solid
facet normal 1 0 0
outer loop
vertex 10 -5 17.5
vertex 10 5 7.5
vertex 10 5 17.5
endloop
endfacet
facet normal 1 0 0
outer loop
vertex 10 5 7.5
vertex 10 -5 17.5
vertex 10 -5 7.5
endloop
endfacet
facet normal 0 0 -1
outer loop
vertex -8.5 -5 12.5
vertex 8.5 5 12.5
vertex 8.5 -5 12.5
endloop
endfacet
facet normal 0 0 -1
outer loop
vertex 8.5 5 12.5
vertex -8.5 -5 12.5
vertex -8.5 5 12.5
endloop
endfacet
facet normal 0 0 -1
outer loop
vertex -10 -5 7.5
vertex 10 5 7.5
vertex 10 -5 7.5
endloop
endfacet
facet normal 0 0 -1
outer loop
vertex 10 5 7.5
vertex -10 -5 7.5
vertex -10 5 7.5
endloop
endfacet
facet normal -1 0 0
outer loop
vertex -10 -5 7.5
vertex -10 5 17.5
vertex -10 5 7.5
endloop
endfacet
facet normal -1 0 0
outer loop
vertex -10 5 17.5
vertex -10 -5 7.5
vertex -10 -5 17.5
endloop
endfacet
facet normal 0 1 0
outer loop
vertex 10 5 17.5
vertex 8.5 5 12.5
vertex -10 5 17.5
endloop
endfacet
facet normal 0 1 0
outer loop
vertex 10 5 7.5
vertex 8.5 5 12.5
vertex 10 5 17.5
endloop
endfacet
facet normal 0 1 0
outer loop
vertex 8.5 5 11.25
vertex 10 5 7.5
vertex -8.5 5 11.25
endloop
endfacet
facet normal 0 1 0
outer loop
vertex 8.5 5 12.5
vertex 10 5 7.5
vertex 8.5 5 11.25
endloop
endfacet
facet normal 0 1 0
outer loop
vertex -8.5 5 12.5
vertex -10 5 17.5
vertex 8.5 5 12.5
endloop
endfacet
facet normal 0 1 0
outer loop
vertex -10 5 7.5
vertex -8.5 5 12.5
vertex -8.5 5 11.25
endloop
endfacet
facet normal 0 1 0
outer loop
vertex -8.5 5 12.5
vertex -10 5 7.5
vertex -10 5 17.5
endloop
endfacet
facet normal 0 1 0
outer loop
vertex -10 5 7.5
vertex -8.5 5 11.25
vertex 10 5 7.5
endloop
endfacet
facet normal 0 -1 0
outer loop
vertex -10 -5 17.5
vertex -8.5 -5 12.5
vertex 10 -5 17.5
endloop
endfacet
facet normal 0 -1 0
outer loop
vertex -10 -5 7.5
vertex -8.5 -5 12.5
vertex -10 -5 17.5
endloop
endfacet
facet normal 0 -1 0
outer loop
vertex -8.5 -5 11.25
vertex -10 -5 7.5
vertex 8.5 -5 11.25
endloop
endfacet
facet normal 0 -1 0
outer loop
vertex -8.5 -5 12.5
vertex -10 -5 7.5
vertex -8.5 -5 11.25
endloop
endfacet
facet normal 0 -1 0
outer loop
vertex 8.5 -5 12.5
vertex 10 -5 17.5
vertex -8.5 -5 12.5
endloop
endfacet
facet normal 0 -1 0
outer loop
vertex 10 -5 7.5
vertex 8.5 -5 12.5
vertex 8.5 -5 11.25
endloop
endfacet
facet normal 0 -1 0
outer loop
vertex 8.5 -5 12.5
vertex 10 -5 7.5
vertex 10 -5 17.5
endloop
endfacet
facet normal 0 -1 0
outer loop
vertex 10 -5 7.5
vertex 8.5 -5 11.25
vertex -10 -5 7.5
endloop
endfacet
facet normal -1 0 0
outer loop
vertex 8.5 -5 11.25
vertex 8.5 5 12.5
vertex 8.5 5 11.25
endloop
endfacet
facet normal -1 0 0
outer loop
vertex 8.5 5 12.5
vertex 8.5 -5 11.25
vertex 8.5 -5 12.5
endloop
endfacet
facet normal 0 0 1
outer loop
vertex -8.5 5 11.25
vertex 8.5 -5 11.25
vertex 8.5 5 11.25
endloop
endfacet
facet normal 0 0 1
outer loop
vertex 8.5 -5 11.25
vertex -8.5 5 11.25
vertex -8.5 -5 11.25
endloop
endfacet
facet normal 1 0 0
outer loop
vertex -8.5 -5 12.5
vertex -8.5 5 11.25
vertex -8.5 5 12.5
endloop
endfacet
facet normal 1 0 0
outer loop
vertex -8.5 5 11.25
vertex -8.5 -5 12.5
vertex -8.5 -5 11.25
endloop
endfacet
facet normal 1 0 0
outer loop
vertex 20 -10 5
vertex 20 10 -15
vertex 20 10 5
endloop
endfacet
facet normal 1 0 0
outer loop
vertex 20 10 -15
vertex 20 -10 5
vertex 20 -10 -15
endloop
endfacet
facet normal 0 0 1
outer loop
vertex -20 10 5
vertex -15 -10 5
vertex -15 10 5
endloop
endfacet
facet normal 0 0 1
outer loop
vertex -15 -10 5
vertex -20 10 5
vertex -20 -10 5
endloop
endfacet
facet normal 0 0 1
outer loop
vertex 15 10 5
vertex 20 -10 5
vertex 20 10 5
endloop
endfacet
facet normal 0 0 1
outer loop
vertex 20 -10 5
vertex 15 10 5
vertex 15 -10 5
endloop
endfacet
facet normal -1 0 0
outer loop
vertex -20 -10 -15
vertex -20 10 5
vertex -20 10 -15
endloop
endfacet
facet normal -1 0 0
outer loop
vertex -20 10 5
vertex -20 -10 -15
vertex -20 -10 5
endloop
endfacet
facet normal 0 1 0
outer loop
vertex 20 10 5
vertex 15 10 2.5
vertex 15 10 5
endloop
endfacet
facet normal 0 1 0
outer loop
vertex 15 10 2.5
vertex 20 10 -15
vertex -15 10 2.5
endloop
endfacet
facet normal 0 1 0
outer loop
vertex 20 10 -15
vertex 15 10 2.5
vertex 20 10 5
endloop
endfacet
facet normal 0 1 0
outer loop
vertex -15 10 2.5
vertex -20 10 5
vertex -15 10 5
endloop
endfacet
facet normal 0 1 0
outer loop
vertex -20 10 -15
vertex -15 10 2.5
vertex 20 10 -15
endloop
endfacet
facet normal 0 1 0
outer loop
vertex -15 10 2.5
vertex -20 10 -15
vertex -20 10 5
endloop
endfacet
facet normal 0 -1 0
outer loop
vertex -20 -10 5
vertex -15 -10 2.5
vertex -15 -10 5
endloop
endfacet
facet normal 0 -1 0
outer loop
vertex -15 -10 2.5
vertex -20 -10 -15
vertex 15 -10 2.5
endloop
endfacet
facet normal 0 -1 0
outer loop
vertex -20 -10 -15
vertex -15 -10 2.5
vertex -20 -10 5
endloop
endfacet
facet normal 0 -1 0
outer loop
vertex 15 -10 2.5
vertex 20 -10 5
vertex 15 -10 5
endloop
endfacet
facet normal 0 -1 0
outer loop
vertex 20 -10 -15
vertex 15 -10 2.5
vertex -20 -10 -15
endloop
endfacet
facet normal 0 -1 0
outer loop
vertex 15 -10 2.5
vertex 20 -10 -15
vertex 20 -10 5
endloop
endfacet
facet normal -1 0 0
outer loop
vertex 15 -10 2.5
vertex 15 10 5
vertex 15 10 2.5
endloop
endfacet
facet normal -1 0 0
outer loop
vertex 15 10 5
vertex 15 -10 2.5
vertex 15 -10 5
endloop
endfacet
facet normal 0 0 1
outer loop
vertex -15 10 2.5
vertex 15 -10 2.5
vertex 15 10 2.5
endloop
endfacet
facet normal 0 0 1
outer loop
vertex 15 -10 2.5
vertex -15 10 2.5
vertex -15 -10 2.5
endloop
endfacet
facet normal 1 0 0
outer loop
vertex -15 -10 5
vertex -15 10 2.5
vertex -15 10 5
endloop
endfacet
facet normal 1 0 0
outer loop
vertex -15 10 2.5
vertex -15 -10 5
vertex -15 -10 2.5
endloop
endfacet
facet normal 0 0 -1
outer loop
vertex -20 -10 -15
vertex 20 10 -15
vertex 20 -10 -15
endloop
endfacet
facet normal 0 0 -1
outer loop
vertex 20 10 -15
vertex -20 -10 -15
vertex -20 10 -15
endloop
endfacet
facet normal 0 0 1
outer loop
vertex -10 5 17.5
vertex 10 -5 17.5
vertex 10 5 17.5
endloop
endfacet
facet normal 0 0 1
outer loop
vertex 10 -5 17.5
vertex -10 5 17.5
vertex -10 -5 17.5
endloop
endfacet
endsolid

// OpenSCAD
// Define dimensions for each component
module central_block() {
    // Adjusted to remove the extra recessed step and match the symmetrical two-level structure
    difference() {
        cube([40, 20, 10], center = true);
        translate([0, 0, 5])
            cube([30, 20, 5], center = true);
    }
}

module side_block() {
    // Adjusted to reduce the depth of the recessed step
    difference() {
        cube([40, 20, 10], center = true);
        translate([15, 0, 7.5]) // Reduced depth of the recessed step
            cube([10, 20, 2.5], center = true);
    }
}

module spacer_block() {
    // Adjusted to reduce the size of the stepped profile
    difference() {
        cube([20, 10, 5], center = true);
        translate([0, 0, 2.5])
            cube([17, 10, 2.5], center = true); // Reduced size of the stepped profile
    }
}

module end_block() {
    // Adjusted to remove the protrusion and make the block flat and symmetrical
    cube([20, 10, 5], center = true);
}

// Assemble the components based on the positional relationship
module assembly() {
    translate([0, 0, 15]) end_block(); // Layer 1
    translate([0, 0, 10]) spacer_block(); // Layer 2
    translate([0, 0, 0]) central_block(); // Layer 3
    translate([0, 0, -10]) side_block(); // Layer 4
}

// Render the assembly
assembly();
